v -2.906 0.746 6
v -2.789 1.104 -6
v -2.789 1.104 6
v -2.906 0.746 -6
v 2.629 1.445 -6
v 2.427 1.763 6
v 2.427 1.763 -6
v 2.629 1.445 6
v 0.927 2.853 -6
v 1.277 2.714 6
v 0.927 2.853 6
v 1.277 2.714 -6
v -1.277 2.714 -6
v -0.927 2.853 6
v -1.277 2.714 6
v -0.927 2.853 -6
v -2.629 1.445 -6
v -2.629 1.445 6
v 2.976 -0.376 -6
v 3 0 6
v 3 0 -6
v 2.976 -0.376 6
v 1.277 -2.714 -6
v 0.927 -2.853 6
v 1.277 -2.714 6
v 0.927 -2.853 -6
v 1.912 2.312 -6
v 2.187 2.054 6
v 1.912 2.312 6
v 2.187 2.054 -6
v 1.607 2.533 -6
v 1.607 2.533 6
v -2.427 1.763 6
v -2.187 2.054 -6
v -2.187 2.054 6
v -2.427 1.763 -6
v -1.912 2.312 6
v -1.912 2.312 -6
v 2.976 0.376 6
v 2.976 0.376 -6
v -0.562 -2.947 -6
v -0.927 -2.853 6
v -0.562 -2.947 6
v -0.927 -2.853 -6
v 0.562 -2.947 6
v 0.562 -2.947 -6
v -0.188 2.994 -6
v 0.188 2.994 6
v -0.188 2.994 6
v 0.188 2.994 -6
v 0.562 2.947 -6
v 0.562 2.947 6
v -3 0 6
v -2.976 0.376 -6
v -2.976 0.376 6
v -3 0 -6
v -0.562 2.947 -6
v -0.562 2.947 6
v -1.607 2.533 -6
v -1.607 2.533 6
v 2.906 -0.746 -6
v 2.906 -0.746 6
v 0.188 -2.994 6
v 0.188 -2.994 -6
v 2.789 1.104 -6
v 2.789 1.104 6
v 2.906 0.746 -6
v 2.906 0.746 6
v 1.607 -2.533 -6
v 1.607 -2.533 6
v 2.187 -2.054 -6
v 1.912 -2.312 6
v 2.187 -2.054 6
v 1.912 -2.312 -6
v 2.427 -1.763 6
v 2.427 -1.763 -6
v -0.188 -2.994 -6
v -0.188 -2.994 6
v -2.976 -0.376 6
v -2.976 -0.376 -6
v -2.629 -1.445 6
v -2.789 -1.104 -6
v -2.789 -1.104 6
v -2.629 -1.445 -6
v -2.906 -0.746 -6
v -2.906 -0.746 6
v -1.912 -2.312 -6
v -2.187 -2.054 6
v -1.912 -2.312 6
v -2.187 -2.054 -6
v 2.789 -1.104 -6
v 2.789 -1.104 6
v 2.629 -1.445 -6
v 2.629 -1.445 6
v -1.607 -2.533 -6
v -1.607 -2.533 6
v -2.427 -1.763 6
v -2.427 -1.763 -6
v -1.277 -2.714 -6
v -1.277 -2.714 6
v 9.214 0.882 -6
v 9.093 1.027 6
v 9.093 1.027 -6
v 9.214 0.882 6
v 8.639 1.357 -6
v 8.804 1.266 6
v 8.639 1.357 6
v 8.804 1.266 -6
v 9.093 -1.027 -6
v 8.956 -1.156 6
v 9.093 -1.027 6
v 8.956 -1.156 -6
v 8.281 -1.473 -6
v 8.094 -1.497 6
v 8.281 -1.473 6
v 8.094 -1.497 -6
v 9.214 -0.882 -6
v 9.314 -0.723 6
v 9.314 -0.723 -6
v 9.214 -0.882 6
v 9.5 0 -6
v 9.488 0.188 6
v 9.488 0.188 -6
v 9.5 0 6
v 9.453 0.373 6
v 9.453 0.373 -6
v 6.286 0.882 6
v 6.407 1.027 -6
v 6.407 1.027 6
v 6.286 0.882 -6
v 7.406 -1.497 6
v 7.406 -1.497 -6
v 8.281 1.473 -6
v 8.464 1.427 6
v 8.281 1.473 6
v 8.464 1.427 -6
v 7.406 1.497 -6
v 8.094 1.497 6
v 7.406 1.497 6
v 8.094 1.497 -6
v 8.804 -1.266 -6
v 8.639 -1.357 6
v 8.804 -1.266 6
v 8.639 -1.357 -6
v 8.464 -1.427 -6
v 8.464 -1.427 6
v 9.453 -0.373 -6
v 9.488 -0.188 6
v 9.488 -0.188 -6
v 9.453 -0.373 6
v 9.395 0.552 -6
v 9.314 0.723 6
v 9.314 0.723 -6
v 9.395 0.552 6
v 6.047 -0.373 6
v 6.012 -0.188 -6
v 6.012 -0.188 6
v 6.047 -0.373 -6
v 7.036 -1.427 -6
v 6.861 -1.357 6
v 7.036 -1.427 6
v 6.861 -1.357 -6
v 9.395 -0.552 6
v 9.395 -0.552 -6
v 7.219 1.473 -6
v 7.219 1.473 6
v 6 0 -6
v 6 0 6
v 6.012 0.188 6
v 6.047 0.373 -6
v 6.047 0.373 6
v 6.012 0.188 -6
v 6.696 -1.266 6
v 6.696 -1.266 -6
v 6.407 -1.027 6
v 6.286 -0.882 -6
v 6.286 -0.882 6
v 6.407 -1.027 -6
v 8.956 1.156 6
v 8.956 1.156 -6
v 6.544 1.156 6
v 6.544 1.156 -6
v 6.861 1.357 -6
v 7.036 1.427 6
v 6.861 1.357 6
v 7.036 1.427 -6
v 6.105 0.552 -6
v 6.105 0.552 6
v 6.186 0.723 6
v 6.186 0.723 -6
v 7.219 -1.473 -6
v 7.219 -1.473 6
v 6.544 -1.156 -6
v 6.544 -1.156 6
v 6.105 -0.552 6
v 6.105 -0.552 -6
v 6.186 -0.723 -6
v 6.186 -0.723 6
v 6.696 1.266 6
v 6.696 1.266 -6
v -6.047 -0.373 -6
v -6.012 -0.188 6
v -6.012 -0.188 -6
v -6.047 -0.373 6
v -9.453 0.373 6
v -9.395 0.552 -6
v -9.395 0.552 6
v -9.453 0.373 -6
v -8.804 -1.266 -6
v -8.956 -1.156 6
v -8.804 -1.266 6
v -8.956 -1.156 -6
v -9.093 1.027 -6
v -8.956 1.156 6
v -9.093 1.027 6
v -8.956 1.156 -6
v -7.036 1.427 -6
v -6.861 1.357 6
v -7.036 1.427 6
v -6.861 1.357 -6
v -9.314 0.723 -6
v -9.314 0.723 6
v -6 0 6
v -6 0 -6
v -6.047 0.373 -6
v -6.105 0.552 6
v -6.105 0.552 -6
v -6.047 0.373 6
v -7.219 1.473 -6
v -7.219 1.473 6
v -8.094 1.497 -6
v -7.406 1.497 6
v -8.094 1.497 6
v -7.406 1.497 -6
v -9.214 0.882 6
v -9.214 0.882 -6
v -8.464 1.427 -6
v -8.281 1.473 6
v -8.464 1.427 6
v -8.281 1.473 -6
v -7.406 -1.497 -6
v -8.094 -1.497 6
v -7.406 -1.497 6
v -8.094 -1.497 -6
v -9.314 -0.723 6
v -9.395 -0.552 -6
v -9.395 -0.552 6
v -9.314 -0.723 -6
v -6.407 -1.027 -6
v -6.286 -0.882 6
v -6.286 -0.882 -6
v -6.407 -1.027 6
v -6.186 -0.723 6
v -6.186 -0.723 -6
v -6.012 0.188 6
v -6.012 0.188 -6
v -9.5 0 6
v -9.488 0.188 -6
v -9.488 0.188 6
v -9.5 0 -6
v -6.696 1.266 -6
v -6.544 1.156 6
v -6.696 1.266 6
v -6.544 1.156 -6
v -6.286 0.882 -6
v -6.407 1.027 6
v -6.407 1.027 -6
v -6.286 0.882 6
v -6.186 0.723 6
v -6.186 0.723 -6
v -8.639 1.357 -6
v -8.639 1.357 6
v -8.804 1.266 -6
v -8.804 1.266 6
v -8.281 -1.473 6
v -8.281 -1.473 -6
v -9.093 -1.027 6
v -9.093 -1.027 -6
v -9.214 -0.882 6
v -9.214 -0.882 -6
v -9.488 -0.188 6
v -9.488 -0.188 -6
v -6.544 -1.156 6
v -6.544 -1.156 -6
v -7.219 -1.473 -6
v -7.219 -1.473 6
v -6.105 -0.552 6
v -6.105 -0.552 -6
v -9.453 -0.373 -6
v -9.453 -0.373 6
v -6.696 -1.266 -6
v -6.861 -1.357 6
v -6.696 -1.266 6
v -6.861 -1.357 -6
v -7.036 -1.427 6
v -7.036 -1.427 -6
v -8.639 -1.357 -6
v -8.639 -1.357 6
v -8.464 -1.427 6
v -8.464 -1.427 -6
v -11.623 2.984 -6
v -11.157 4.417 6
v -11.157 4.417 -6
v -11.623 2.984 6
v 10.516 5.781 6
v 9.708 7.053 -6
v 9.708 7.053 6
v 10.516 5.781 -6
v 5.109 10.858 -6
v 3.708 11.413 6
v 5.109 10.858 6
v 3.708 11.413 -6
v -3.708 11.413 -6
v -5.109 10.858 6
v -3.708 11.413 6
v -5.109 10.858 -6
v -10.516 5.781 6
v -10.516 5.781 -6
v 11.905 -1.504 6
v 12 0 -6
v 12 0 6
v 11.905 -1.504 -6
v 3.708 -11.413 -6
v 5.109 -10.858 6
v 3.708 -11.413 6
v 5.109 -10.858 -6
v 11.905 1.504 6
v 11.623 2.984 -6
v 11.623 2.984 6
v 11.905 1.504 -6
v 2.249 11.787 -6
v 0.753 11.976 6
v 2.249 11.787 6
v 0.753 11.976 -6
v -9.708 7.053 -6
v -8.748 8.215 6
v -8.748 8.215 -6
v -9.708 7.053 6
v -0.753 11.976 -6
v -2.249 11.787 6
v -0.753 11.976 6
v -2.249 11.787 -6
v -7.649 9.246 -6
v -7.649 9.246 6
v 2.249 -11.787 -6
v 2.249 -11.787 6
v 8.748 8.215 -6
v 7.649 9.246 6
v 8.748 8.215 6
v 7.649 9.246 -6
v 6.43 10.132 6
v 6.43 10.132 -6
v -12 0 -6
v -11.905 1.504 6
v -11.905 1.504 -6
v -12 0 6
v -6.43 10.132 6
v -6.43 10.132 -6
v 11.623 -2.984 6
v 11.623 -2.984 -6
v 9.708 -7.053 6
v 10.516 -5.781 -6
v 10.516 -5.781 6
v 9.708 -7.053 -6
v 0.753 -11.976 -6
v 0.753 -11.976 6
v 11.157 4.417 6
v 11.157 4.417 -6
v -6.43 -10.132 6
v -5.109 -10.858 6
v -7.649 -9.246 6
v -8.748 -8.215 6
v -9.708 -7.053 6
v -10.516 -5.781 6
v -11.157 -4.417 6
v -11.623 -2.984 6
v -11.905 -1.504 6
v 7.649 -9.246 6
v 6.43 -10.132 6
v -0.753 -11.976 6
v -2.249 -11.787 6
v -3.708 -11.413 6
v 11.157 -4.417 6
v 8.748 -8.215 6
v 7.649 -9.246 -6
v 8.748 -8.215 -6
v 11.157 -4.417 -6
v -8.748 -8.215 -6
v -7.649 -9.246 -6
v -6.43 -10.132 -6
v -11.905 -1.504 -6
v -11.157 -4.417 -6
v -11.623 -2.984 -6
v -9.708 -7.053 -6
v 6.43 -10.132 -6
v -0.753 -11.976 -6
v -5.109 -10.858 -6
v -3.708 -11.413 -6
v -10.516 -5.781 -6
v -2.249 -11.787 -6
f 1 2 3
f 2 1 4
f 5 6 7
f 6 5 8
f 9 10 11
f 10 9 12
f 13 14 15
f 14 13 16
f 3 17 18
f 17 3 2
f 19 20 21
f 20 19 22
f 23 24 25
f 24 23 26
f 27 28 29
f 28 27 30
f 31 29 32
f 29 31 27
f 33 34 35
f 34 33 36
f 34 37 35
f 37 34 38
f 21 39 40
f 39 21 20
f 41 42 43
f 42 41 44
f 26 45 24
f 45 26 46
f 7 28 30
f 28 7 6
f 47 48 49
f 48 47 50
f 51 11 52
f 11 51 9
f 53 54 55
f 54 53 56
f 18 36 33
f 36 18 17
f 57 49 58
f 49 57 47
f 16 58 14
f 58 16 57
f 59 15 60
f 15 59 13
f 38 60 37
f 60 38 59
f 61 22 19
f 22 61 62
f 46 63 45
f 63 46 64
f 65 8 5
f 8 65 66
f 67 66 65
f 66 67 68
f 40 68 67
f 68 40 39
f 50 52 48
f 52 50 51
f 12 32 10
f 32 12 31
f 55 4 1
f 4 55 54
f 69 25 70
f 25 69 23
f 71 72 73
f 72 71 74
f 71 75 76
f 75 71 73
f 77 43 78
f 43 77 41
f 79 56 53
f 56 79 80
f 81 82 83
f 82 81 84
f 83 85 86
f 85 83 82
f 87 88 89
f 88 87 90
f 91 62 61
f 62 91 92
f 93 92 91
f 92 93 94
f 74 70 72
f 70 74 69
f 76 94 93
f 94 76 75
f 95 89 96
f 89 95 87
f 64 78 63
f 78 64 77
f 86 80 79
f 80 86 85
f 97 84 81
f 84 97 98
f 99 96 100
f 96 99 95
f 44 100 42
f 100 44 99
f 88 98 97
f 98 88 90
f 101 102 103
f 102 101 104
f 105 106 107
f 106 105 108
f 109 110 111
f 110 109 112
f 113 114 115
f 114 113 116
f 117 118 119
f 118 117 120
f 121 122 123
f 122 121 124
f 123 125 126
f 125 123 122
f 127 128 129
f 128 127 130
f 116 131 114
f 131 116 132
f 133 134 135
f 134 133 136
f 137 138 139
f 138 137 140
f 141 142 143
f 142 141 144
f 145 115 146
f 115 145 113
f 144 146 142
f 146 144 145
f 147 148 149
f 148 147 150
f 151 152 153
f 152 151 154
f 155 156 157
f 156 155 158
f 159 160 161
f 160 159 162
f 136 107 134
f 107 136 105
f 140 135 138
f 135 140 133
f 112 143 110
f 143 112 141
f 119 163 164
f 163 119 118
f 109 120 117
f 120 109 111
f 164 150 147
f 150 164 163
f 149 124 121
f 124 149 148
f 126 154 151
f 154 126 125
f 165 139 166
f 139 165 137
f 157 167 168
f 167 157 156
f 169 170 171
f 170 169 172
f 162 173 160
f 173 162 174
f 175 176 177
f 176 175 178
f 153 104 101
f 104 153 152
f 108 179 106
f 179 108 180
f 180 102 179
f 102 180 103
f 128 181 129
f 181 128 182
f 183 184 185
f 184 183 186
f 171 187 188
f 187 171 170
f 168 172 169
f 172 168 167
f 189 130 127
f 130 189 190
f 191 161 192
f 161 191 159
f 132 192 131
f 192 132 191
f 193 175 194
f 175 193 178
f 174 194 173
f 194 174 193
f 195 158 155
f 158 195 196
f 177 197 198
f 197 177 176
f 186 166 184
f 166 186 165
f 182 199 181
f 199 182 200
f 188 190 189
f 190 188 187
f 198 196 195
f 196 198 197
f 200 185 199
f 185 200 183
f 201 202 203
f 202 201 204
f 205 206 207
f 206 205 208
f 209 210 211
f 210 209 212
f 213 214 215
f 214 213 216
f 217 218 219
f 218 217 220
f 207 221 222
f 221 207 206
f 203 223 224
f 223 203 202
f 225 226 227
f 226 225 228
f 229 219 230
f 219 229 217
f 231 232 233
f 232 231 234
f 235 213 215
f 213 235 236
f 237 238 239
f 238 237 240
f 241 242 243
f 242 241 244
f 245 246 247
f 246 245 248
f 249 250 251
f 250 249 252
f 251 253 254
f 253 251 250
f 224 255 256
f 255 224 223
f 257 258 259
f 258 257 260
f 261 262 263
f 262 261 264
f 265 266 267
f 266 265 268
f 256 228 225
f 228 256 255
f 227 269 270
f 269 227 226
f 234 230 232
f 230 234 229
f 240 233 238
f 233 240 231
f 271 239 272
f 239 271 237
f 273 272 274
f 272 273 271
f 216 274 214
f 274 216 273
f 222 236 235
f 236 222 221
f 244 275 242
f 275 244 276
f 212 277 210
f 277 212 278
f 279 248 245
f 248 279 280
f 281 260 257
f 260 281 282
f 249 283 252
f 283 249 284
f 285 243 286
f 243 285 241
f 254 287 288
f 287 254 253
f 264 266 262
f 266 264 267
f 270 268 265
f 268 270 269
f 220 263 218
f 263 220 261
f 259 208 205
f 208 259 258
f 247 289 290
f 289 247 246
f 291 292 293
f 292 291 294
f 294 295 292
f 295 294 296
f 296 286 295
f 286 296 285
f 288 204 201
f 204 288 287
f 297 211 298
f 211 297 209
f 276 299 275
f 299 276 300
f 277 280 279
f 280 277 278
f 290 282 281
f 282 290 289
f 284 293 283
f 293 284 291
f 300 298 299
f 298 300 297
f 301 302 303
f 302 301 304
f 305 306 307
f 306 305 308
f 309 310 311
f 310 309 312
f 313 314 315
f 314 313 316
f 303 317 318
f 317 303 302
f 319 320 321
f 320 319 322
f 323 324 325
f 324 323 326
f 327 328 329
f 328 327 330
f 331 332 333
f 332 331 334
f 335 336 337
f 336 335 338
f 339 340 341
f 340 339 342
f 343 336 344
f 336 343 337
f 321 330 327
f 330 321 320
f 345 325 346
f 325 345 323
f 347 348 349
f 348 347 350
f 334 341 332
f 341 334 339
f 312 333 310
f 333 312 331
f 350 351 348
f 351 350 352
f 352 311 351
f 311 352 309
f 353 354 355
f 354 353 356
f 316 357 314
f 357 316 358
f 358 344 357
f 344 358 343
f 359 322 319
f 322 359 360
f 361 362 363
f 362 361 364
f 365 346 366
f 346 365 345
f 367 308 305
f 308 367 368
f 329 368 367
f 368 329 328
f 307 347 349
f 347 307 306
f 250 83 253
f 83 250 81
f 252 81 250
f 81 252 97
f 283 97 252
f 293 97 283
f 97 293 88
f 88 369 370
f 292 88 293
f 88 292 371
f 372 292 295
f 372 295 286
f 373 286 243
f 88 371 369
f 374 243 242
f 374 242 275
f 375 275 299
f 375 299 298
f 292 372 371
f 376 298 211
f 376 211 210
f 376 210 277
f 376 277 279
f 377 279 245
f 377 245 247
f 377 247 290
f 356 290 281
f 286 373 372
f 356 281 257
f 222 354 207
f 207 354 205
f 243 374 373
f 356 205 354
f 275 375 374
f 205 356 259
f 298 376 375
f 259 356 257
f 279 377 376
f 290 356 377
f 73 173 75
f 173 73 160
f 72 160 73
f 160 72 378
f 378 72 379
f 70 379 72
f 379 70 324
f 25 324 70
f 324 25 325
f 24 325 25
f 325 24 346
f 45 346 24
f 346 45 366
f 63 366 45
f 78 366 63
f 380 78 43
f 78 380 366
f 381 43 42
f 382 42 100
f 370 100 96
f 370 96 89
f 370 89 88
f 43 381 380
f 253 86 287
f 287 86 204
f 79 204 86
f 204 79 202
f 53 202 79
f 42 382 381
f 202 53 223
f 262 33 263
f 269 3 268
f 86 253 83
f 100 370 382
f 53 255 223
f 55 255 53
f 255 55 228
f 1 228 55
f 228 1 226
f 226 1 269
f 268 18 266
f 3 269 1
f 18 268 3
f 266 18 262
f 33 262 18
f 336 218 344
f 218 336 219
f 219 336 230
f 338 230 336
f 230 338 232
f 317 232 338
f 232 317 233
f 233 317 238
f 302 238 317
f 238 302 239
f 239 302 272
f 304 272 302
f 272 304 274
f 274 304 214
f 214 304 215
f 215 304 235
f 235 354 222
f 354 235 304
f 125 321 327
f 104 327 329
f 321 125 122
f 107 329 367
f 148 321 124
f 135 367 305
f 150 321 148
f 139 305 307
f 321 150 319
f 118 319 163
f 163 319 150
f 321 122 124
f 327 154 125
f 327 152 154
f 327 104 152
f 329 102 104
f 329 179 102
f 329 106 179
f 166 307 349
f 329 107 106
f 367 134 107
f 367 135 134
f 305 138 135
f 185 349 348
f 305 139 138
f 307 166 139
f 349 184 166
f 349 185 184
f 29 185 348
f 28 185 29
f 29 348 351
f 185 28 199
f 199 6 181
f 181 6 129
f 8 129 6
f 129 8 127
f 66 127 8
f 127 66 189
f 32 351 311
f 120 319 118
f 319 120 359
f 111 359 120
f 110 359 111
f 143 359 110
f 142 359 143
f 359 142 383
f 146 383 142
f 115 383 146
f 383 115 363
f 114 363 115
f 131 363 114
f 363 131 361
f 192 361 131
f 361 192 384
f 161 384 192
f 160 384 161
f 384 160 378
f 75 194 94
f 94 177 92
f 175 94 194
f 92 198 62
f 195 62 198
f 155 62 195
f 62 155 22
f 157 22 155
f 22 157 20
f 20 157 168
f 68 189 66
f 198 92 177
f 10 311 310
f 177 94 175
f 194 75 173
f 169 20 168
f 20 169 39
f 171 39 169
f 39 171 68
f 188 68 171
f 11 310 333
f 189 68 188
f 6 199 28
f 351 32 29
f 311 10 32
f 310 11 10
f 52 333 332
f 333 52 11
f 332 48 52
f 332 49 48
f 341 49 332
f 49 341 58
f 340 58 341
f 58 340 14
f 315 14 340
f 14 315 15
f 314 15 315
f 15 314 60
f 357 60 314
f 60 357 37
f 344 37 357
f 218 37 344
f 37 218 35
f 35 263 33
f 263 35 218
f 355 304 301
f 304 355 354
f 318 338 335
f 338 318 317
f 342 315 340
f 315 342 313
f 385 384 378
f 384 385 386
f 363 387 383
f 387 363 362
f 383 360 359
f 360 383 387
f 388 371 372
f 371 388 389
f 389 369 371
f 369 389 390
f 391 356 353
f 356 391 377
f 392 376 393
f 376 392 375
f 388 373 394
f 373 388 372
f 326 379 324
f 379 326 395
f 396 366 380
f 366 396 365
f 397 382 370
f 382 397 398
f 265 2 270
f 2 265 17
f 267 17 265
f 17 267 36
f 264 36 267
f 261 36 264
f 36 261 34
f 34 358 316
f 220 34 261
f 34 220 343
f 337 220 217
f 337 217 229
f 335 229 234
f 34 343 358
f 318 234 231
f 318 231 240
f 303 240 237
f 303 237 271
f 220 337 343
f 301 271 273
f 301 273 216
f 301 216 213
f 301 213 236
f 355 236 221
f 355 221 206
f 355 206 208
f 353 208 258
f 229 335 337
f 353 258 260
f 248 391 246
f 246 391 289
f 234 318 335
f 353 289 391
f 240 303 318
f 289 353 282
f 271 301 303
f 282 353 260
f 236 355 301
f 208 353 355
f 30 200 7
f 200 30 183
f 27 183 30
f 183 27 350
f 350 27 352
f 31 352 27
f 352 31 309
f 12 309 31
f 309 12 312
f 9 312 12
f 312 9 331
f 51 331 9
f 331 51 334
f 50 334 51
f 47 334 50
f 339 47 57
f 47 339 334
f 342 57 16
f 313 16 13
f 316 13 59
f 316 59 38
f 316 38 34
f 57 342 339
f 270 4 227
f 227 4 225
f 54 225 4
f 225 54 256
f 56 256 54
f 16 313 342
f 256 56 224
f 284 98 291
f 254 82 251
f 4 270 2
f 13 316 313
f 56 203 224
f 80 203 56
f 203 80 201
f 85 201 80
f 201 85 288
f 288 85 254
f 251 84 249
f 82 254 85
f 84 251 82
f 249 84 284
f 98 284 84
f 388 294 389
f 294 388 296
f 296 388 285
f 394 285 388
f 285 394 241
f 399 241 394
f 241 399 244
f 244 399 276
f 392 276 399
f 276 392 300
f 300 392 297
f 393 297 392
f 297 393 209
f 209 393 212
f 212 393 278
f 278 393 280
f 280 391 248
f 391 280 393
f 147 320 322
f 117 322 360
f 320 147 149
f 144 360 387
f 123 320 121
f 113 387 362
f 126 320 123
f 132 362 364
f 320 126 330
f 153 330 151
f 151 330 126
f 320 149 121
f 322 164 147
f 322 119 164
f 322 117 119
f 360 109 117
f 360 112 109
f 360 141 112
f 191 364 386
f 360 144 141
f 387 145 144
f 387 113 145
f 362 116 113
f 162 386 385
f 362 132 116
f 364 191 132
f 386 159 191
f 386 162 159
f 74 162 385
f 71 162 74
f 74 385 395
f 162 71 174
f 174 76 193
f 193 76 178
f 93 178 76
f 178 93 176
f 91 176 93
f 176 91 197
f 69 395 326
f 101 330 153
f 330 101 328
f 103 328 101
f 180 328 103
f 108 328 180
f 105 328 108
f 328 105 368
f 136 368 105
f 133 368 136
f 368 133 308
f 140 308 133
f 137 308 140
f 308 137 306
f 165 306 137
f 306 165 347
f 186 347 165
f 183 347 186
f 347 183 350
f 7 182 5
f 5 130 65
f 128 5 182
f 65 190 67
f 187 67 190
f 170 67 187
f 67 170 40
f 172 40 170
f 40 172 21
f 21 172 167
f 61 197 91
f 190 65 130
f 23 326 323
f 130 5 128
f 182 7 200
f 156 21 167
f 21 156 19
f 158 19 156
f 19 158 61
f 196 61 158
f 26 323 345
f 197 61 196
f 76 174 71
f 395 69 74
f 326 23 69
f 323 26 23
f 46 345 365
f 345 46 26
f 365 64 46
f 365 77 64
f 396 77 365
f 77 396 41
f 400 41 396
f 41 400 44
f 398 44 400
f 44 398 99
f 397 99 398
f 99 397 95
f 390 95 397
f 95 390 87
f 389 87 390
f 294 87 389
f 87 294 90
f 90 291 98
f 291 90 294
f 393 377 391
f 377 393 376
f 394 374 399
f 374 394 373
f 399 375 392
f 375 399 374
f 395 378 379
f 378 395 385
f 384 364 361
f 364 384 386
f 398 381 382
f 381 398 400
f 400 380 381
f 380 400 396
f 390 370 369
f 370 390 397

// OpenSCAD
$fn = 50;


difference() {
	union() {
		translate(v = [0, 0, -6.0000000000]) {
			rotate(a = [0, 0, 0]) {
				cylinder(h = 12, r = 12.0000000000);
			}
		}
	}
	union() {
		translate(v = [0, 0, 0]) {
			rotate(a = [0, 0, 0]) {
				translate(v = [0, 0, -3.5000000000]) {
					union() {
						difference() {
							translate(v = [0, 0, 0]) {
								rotate(a = [0, 0, 0]) {
									cylinder(h = 7, r = 26.0000000000);
								}
							}
							translate(v = [0, 0, 0]) {
								rotate(a = [0, 0, 0]) {
									cylinder(h = 7, r = 20.0000000000);
								}
							}
						}
						difference() {
							translate(v = [0, 0, -50]) {
								rotate(a = [0, 0, 0]) {
									cylinder(h = 100, r = 23.5000000000);
								}
							}
							translate(v = [0, 0, -50]) {
								rotate(a = [0, 0, 0]) {
									cylinder(h = 100, r = 22.5000000000);
								}
							}
						}
					}
				}
			}
		}
		translate(v = [-30.0000000000, -30.0000000000, -125.0000000000]) {
			rotate(a = [0, 0, 0]) {
				cylinder(h = 250, r = 3.0000000000);
			}
		}
		translate(v = [-30.0000000000, -15.0000000000, -125.0000000000]) {
			rotate(a = [0, 0, 0]) {
				cylinder(h = 250, r = 3.0000000000);
			}
		}
		translate(v = [-30.0000000000, 15.0000000000, -125.0000000000]) {
			rotate(a = [0, 0, 0]) {
				cylinder(h = 250, r = 3.0000000000);
			}
		}
		translate(v = [-30.0000000000, 30.0000000000, -125.0000000000]) {
			rotate(a = [0, 0, 0]) {
				cylinder(h = 250, r = 3.0000000000);
			}
		}
		translate(v = [-15.0000000000, -30.0000000000, -125.0000000000]) {
			rotate(a = [0, 0, 0]) {
				cylinder(h = 250, r = 3.0000000000);
			}
		}
		translate(v = [-15.0000000000, 30.0000000000, -125.0000000000]) {
			rotate(a = [0, 0, 0]) {
				cylinder(h = 250, r = 3.0000000000);
			}
		}
		translate(v = [15.0000000000, -30.0000000000, -125.0000000000]) {
			rotate(a = [0, 0, 0]) {
				cylinder(h = 250, r = 3.0000000000);
			}
		}
		translate(v = [15.0000000000, 30.0000000000, -125.0000000000]) {
			rotate(a = [0, 0, 0]) {
				cylinder(h = 250, r = 3.0000000000);
			}
		}
		translate(v = [30.0000000000, -30.0000000000, -125.0000000000]) {
			rotate(a = [0, 0, 0]) {
				cylinder(h = 250, r = 3.0000000000);
			}
		}
		translate(v = [30.0000000000, -15.0000000000, -125.0000000000]) {
			rotate(a = [0, 0, 0]) {
				cylinder(h = 250, r = 3.0000000000);
			}
		}
		translate(v = [30.0000000000, 15.0000000000, -125.0000000000]) {
			rotate(a = [0, 0, 0]) {
				cylinder(h = 250, r = 3.0000000000);
			}
		}
		translate(v = [30.0000000000, 30.0000000000, -125.0000000000]) {
			rotate(a = [0, 0, 0]) {
				cylinder(h = 250, r = 3.0000000000);
			}
		}
		translate(v = [-15.0000000000, 0.0000000000, -125.0000000000]) {
			rotate(a = [0, 0, 0]) {
				cylinder(h = 250, r = 3.0000000000);
			}
		}
		translate(v = [0.0000000000, -15.0000000000, -125.0000000000]) {
			rotate(a = [0, 0, 0]) {
				cylinder(h = 250, r = 3.0000000000);
			}
		}
		translate(v = [0.0000000000, 15.0000000000, -125.0000000000]) {
			rotate(a = [0, 0, 0]) {
				cylinder(h = 250, r = 3.0000000000);
			}
		}
		translate(v = [15.0000000000, 0.0000000000, -125.0000000000]) {
			rotate(a = [0, 0, 0]) {
				cylinder(h = 250, r = 3.0000000000);
			}
		}
		translate(v = [0, 0, -125.0000000000]) {
			rotate(a = [0, 0, 0]) {
				cylinder(h = 250, r = 3.0000000000);
			}
		}
		translate(v = [30.0000000000, 0.0000000000, 4.3000000000]) {
			rotate(a = [0, 0, 15.0000000000]) {
				cylinder(h = 1.7000000000, r1 = 1.5000000000, r2 = 2.9000000000);
			}
		}
		translate(v = [30.0000000000, 0.0000000000, -6.0000000000]) {
			rotate(a = [0, 0, 15.0000000000]) {
				cylinder(h = 12, r = 1.5000000000);
			}
		}
		translate(v = [30.0000000000, 0.0000000000, -6.0000000000]) {
			rotate(a = [0, 0, 15.0000000000]) {
				translate(v = [0, 0, 0]) {
					rotate(a = [0, 0, 15.0000000000]) {
						linear_extrude(height = 2.5000000000) {
							polygon(points = [[3.1735000000, 0.0000000000], [1.5867500000, 2.7483316189], [-1.5867500000, 2.7483316189], [-3.1735000000, 0.0000000000], [-1.5867500000, -2.7483316189], [1.5867500000, -2.7483316189]]);
						}
					}
				}
			}
		}
		translate(v = [0.0000000000, -30.0000000000, -4.3000000000]) {
			rotate(a = [0, 180, 0]) {
				cylinder(h = 1.7000000000, r1 = 1.5000000000, r2 = 2.9000000000);
			}
		}
		translate(v = [0.0000000000, -30.0000000000, 6.0000000000]) {
			rotate(a = [0, 180, 0]) {
				cylinder(h = 12, r = 1.5000000000);
			}
		}
		translate(v = [0.0000000000, -30.0000000000, 3.0000000000]) {
			rotate(a = [0, 180, 0]) {
				translate(v = [0, 0, 0]) {
					rotate(a = [0, 180, 0]) {
						linear_extrude(height = 2.5000000000) {
							polygon(points = [[3.1735000000, 0.0000000000], [1.5867500000, 2.7483316189], [-1.5867500000, 2.7483316189], [-3.1735000000, 0.0000000000], [-1.5867500000, -2.7483316189], [1.5867500000, -2.7483316189]]);
						}
					}
				}
			}
		}
		translate(v = [-30.0000000000, 0.0000000000, 4.3000000000]) {
			rotate(a = [0, 0, 15.0000000000]) {
				cylinder(h = 1.7000000000, r1 = 1.5000000000, r2 = 2.9000000000);
			}
		}
		translate(v = [-30.0000000000, 0.0000000000, -6.0000000000]) {
			rotate(a = [0, 0, 15.0000000000]) {
				cylinder(h = 12, r = 1.5000000000);
			}
		}
		translate(v = [-30.0000000000, 0.0000000000, -6.0000000000]) {
			rotate(a = [0, 0, 15.0000000000]) {
				translate(v = [0, 0, 0]) {
					rotate(a = [0, 0, 15.0000000000]) {
						linear_extrude(height = 2.5000000000) {
							polygon(points = [[3.1735000000, 0.0000000000], [1.5867500000, 2.7483316189], [-1.5867500000, 2.7483316189], [-3.1735000000, 0.0000000000], [-1.5867500000, -2.7483316189], [1.5867500000, -2.7483316189]]);
						}
					}
				}
			}
		}
		translate(v = [0.0000000000, 30.0000000000, -4.3000000000]) {
			rotate(a = [0, 180, 0]) {
				cylinder(h = 1.7000000000, r1 = 1.5000000000, r2 = 2.9000000000);
			}
		}
		translate(v = [0.0000000000, 30.0000000000, 6.0000000000]) {
			rotate(a = [0, 180, 0]) {
				cylinder(h = 12, r = 1.5000000000);
			}
		}
		translate(v = [0.0000000000, 30.0000000000, 3.0000000000]) {
			rotate(a = [0, 180, 0]) {
				translate(v = [0, 0, 0]) {
					rotate(a = [0, 180, 0]) {
						linear_extrude(height = 2.5000000000) {
							polygon(points = [[3.1735000000, 0.0000000000], [1.5867500000, 2.7483316189], [-1.5867500000, 2.7483316189], [-3.1735000000, 0.0000000000], [-1.5867500000, -2.7483316189], [1.5867500000, -2.7483316189]]);
						}
					}
				}
			}
		}
		translate(v = [7.7500000000, 0, -125.0000000000]) {
			rotate(a = [0, 0, 0]) {
				hull() {
					translate(v = [0.2500000000, 0, 0]) {
						rotate(a = [0, 0, 0]) {
							translate(v = [0, 0, 0]) {
								rotate(a = [0, 0, 0]) {
									cylinder(h = 250, r = 1.5000000000);
								}
							}
						}
					}
					translate(v = [-0.2500000000, 0, 0]) {
						rotate(a = [0, 0, 0]) {
							translate(v = [0, 0, 0]) {
								rotate(a = [0, 0, 0]) {
									cylinder(h = 250, r = 1.5000000000);
								}
							}
						}
					}
				}
			}
		}
		translate(v = [-7.7500000000, 0, -125.0000000000]) {
			rotate(a = [0, 0, 0]) {
				hull() {
					translate(v = [0.2500000000, 0, 0]) {
						rotate(a = [0, 0, 0]) {
							translate(v = [0, 0, 0]) {
								rotate(a = [0, 0, 0]) {
									cylinder(h = 250, r = 1.5000000000);
								}
							}
						}
					}
					translate(v = [-0.2500000000, 0, 0]) {
						rotate(a = [0, 0, 0]) {
							translate(v = [0, 0, 0]) {
								rotate(a = [0, 0, 0]) {
									cylinder(h = 250, r = 1.5000000000);
								}
							}
						}
					}
				}
			}
		}
	}
}
